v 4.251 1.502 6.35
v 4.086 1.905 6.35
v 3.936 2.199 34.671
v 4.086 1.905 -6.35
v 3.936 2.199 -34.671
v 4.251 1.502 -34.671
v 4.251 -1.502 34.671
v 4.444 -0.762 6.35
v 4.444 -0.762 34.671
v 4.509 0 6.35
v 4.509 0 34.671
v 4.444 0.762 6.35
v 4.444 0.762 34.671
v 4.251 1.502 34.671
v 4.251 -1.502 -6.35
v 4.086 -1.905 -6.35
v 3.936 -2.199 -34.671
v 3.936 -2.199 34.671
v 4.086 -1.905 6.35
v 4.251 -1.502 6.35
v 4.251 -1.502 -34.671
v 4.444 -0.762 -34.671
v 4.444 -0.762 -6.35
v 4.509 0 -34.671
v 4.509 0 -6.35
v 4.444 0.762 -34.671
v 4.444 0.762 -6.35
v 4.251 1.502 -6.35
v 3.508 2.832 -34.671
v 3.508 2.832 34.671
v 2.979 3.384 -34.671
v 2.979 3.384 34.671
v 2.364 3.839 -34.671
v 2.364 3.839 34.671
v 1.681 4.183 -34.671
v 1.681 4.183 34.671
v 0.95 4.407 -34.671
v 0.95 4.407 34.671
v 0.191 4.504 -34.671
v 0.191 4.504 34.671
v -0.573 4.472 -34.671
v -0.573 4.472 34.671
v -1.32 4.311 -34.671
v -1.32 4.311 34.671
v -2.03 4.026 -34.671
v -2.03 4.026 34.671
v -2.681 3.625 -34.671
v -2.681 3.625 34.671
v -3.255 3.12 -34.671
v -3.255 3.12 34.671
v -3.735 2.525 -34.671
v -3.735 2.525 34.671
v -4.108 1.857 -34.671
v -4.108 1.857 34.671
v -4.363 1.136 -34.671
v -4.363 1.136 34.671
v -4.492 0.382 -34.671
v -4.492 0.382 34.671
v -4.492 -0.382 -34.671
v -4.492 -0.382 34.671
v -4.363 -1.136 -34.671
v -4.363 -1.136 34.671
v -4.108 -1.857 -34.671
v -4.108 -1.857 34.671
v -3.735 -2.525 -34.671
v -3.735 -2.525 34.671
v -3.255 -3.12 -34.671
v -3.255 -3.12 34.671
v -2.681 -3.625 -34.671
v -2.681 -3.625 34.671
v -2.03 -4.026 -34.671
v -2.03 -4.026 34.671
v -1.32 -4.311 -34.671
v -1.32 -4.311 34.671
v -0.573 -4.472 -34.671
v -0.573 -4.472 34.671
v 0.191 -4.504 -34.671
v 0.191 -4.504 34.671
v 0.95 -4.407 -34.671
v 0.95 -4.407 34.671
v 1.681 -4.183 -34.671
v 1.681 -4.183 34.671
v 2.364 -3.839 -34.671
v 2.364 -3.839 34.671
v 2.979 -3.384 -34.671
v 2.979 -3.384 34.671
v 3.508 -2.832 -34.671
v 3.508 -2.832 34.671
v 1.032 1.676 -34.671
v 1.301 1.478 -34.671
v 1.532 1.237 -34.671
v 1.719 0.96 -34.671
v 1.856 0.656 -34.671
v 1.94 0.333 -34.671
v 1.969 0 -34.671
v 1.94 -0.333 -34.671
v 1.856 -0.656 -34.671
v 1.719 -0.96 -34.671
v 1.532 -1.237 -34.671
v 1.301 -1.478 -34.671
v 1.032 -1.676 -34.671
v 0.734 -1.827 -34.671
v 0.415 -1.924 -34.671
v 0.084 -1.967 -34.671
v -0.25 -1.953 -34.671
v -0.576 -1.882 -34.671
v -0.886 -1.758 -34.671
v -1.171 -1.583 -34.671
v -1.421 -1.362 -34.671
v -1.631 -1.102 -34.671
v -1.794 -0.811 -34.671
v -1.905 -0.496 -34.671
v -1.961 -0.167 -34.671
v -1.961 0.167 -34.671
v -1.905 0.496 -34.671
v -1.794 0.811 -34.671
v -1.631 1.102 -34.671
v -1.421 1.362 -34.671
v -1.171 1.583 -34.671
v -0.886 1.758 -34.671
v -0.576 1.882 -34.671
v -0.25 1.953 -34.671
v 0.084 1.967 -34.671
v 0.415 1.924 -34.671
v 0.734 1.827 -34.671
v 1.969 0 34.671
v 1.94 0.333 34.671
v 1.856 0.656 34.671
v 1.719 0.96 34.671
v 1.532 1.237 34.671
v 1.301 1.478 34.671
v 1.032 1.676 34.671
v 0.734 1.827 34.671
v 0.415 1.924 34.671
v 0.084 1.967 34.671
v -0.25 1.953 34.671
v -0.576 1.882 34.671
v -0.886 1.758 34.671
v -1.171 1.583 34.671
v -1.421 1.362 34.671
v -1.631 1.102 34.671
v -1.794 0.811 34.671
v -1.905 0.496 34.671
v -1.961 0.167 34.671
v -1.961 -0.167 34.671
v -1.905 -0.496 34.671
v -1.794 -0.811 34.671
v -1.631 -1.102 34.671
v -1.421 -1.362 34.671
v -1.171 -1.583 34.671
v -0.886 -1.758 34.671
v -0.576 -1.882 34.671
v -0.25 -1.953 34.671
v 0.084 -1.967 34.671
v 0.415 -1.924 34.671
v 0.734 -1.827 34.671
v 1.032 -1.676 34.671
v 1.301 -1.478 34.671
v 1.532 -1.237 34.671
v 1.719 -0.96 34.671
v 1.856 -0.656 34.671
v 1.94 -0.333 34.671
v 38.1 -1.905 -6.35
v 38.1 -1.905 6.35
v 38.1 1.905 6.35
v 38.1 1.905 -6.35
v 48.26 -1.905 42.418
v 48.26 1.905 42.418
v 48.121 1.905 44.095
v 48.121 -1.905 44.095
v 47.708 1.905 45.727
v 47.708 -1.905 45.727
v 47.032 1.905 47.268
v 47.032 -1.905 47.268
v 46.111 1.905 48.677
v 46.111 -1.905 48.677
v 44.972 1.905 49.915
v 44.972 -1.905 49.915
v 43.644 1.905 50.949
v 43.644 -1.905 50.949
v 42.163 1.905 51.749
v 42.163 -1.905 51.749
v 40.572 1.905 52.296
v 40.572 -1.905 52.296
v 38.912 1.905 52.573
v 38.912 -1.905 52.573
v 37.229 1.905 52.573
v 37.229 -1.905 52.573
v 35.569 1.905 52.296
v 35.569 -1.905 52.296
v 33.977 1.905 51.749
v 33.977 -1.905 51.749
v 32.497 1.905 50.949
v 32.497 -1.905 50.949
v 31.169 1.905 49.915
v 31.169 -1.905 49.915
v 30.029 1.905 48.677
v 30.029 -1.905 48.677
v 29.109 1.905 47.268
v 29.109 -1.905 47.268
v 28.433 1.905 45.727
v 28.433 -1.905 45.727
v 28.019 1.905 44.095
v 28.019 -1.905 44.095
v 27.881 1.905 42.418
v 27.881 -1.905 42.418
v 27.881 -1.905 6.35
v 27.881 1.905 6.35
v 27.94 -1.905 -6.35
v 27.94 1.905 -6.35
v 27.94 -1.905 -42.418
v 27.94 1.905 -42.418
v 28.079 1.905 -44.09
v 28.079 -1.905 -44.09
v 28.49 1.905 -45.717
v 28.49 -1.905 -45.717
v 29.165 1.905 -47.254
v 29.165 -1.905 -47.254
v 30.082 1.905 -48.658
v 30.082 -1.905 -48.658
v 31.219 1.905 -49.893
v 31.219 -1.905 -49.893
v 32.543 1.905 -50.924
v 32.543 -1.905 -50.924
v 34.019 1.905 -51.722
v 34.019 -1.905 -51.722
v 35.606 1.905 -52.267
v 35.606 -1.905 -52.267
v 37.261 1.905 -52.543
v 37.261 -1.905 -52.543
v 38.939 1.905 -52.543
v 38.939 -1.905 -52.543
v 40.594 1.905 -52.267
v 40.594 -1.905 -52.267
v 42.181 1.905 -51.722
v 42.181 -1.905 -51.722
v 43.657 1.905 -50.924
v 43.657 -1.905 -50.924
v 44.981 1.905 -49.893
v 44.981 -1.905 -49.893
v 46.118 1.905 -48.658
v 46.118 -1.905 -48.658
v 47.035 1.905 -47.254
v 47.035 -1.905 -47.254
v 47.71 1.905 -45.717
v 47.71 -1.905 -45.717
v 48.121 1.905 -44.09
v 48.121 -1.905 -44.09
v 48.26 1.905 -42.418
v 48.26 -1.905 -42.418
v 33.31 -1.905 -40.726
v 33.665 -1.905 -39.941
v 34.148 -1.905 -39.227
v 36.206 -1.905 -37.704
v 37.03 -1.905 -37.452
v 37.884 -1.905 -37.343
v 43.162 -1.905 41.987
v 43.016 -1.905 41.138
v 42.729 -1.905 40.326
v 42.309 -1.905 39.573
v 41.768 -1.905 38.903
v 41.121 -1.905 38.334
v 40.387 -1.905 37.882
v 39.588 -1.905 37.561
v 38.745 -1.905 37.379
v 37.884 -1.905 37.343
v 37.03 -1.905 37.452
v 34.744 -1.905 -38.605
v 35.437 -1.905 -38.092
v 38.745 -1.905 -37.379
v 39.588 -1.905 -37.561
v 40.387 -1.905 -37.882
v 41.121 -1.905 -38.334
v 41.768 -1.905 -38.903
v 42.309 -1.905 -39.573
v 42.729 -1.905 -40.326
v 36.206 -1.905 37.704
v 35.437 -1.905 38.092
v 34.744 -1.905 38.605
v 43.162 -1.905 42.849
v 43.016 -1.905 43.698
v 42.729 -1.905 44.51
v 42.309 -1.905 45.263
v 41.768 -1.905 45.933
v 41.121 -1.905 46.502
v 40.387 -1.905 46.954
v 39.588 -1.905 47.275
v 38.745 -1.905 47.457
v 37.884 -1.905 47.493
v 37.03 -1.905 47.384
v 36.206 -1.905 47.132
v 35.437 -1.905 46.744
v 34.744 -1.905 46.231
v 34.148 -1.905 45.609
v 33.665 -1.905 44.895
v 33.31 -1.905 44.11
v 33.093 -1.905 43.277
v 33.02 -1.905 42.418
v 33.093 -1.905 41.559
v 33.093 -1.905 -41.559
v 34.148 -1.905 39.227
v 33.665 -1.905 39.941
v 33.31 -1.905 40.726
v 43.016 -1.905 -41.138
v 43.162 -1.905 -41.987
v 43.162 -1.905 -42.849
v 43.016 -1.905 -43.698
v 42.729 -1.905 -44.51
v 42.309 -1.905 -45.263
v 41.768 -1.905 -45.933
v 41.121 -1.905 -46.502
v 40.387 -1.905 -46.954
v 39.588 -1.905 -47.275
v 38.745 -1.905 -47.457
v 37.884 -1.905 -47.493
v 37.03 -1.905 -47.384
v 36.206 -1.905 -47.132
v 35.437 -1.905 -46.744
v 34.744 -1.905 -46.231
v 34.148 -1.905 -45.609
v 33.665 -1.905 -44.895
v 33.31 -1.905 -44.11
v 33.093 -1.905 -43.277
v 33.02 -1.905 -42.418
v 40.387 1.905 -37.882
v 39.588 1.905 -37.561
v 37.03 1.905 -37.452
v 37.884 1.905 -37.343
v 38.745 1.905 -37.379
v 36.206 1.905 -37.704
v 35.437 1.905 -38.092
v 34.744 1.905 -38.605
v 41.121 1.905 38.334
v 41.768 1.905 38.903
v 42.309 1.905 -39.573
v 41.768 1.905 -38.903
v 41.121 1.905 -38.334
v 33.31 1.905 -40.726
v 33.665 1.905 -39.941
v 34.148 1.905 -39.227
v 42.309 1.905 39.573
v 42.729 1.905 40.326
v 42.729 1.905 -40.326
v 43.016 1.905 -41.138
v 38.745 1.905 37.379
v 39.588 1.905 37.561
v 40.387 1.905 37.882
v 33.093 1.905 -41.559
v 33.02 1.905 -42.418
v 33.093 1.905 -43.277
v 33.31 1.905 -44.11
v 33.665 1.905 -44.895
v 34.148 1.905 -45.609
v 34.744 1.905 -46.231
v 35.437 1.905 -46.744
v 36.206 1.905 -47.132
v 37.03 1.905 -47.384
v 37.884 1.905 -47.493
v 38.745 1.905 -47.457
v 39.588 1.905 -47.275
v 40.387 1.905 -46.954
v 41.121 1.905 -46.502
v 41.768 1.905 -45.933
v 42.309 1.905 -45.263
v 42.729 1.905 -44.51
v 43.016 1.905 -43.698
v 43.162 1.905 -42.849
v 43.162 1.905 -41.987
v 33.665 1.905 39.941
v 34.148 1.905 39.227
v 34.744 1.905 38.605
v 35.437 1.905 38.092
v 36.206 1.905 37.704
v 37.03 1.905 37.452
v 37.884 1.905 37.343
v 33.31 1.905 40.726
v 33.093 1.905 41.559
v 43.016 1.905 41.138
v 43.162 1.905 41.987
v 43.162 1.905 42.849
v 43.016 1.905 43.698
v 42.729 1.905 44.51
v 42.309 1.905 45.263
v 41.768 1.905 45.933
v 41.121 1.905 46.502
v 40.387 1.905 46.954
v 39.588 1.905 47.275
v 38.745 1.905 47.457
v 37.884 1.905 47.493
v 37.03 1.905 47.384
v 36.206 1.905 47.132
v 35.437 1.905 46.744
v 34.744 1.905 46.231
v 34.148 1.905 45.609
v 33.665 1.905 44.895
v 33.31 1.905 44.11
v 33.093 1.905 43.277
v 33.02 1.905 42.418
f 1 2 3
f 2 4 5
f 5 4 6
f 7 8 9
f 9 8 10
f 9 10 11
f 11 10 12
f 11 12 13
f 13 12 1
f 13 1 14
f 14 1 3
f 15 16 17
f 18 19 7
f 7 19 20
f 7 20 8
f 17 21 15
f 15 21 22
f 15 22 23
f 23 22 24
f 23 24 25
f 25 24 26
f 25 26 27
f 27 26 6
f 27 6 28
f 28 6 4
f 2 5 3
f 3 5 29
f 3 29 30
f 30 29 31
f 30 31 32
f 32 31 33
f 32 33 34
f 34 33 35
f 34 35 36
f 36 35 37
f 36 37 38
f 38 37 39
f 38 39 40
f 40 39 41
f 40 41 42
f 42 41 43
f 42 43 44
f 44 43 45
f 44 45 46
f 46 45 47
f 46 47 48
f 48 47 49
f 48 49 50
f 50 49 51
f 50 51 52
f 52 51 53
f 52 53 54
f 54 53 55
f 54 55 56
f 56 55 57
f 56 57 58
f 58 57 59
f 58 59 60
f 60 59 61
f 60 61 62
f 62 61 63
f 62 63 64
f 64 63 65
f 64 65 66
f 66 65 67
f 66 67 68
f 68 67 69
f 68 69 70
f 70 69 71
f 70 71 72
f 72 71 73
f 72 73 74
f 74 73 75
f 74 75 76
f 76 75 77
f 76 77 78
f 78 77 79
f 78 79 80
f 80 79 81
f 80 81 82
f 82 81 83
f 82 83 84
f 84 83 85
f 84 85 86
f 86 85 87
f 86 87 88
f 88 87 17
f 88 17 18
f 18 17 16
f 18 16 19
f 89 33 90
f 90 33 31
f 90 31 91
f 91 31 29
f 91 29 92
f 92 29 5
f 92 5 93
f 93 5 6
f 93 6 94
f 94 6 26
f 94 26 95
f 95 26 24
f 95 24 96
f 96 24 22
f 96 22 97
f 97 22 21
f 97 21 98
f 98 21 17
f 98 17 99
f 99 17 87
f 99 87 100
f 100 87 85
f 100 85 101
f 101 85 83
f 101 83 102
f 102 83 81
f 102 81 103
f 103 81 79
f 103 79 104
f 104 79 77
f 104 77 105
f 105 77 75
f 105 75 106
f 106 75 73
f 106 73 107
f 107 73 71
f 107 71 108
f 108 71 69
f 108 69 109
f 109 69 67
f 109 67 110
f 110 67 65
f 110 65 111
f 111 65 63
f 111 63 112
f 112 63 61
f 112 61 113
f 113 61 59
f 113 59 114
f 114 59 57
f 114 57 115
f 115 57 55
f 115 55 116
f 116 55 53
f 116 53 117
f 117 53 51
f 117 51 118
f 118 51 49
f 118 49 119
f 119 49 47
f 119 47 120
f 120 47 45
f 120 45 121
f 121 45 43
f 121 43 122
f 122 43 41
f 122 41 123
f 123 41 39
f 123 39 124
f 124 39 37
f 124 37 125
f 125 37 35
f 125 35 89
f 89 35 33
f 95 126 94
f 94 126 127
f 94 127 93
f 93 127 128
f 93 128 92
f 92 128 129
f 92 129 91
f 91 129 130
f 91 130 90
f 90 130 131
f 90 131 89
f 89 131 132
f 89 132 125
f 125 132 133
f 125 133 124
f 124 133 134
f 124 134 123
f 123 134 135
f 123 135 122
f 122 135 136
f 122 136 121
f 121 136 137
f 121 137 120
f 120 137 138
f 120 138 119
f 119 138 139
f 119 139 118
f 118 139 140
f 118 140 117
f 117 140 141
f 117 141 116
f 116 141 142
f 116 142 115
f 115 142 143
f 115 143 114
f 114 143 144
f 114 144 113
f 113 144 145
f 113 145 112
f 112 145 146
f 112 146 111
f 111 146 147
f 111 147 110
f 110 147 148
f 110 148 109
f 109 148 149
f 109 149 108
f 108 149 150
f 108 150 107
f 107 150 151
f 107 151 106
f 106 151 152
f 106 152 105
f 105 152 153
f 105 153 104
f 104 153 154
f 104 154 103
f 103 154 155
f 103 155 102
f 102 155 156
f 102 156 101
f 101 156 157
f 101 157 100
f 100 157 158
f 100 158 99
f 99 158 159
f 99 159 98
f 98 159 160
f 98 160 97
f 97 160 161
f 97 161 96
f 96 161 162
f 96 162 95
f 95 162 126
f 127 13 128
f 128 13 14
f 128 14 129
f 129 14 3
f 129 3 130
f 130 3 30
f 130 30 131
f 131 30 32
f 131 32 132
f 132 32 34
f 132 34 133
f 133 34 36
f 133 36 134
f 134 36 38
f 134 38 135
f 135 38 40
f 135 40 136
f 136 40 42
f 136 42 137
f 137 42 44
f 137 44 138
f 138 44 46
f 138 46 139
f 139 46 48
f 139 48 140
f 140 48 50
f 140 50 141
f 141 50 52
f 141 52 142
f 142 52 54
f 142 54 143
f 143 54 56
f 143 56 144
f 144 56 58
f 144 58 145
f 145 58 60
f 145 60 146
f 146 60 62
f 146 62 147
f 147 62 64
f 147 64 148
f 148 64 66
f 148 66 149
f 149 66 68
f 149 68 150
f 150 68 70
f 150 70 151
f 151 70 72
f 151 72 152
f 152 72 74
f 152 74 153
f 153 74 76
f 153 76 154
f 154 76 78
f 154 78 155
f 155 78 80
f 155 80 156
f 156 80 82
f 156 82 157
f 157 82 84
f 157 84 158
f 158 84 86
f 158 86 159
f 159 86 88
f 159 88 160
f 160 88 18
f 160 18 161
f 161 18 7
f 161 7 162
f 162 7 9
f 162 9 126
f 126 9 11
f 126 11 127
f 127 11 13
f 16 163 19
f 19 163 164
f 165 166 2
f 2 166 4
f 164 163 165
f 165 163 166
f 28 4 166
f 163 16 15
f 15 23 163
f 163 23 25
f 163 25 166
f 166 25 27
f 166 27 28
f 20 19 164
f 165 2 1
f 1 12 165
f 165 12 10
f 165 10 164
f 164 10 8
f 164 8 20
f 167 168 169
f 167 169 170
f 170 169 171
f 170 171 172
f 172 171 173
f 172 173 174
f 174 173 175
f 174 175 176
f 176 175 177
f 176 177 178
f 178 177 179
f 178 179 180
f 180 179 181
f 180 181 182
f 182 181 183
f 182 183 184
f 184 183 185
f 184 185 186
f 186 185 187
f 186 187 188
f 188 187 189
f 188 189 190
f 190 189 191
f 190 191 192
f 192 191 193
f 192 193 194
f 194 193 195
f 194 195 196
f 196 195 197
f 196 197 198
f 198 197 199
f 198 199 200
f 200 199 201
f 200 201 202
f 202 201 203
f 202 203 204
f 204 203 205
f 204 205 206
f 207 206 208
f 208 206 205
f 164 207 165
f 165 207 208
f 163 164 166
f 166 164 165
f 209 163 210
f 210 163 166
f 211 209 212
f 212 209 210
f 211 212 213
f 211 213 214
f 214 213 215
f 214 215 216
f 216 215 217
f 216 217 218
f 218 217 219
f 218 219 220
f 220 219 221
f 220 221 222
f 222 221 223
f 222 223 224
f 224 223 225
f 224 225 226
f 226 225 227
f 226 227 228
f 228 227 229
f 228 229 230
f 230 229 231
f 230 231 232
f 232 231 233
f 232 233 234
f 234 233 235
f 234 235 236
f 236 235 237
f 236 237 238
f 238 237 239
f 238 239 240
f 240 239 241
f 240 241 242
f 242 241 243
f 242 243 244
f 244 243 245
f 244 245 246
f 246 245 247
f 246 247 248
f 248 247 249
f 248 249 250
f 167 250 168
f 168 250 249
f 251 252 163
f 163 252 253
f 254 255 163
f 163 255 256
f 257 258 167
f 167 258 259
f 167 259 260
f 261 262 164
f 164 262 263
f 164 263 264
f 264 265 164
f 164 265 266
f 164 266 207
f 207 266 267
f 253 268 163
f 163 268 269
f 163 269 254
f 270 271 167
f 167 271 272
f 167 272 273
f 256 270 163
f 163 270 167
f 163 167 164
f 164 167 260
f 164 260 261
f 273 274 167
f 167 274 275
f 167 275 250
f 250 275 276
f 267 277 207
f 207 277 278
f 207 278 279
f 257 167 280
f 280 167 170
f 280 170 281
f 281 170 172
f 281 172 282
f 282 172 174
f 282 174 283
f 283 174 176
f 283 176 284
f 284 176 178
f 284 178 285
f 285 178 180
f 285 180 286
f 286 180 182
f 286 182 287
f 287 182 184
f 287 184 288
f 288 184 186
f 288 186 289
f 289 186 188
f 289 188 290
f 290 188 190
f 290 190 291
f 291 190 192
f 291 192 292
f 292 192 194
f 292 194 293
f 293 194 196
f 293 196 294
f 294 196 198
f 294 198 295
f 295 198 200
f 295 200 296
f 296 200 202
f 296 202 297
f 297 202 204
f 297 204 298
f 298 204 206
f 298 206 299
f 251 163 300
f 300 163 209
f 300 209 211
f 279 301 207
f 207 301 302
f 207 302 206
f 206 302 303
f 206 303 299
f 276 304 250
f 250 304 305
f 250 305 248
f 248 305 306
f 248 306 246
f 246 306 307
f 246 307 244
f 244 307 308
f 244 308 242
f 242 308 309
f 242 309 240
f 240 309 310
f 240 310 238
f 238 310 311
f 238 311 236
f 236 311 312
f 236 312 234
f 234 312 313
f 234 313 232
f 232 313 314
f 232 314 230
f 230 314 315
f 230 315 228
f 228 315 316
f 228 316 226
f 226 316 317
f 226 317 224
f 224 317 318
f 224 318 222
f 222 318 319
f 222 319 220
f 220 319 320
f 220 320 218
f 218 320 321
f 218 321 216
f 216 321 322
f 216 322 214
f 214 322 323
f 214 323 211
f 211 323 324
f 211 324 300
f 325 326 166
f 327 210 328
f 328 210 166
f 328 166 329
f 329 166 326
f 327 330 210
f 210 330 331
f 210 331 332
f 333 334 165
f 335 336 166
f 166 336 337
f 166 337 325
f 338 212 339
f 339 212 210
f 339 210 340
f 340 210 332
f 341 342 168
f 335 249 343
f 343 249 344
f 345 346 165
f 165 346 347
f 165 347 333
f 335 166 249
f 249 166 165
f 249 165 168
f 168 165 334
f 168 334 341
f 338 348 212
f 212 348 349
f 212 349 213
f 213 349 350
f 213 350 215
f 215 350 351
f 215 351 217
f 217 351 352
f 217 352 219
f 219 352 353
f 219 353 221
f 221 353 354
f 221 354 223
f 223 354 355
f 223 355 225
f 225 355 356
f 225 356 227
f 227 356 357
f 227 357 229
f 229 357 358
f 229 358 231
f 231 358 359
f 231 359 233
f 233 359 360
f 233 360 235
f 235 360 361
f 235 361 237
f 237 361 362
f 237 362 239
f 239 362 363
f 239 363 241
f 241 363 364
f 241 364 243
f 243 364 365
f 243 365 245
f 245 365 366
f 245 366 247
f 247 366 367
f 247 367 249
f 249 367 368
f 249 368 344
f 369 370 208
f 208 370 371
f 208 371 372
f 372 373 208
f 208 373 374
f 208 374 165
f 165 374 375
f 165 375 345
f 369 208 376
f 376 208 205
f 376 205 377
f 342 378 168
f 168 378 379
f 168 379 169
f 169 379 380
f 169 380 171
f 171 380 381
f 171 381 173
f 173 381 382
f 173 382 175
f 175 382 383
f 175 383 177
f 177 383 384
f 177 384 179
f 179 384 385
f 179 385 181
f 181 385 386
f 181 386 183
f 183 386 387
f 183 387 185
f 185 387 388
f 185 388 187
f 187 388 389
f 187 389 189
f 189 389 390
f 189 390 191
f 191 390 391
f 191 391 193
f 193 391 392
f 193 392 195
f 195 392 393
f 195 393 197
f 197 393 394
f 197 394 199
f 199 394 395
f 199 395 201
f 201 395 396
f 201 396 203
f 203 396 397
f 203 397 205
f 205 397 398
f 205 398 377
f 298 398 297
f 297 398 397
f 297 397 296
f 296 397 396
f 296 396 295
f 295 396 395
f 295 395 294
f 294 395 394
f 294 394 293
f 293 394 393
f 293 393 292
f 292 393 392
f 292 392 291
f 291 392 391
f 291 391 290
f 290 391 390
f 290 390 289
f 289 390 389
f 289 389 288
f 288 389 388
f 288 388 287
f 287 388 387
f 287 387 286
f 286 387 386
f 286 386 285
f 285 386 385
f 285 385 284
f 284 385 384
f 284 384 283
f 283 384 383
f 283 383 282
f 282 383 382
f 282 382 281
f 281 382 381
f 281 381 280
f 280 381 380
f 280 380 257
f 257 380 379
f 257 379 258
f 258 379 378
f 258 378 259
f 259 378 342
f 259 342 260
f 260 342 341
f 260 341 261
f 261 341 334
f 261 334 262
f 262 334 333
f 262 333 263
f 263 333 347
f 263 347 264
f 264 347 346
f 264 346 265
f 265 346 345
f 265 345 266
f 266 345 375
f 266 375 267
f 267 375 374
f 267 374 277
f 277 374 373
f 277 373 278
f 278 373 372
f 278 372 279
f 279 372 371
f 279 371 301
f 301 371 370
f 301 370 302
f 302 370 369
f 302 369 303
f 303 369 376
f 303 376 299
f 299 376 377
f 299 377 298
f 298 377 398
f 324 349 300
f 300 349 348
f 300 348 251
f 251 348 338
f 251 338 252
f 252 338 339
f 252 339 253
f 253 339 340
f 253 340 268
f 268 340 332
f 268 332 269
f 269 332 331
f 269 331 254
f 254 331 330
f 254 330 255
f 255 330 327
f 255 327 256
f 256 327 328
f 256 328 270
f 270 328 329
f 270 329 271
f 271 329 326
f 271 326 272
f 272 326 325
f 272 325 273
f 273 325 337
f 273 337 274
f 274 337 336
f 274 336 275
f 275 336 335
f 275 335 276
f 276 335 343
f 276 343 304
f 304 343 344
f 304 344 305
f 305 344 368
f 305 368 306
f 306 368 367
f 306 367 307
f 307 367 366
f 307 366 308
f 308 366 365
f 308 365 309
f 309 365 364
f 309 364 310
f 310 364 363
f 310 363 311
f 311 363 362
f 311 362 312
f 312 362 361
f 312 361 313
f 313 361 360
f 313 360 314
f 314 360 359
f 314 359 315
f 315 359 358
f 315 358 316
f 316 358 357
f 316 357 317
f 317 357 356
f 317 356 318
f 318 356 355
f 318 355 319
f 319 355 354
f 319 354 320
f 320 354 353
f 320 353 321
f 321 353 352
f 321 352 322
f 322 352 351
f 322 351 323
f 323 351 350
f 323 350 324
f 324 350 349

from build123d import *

# Parameters (mm, degrees)
BOSS_EXTRUDE1_DEPTH      = 34.671
BOSS_EXTRUDE1_DEPTH_BACK = 34.671
SKETCH1_R                = 4.5085
SKETCH1_R_2              = 1.9685
BOSS_EXTRUDE2_DEPTH      = 6.35
BOSS_EXTRUDE2_DEPTH_BACK = 6.35
SKETCH3_W                = 36.1315
SKETCH3_H                = 3.81
SKETCH5_R                = 5.08
BOSS_EXTRUDE3_DEPTH      = 3.81


with BuildPart() as part:
    # Sketch1 → Boss-Extrude1 (new, two sides: drawn at the far end of the back side and taken through both)
    with BuildSketch(Plane.XY.offset(-BOSS_EXTRUDE1_DEPTH_BACK)):
        Circle(SKETCH1_R)
        Circle(SKETCH1_R_2, mode=Mode.SUBTRACT)
    extrude(amount=BOSS_EXTRUDE1_DEPTH + BOSS_EXTRUDE1_DEPTH_BACK)

    # Sketch3 → Boss-Extrude2 (add, two sides: drawn at the far end of the back side and taken through both)
    with BuildSketch(Plane.XY.offset(-BOSS_EXTRUDE2_DEPTH_BACK)):
        with Locations((20.03425, 0)):
            Rectangle(SKETCH3_W, SKETCH3_H)
    extrude(amount=BOSS_EXTRUDE2_DEPTH + BOSS_EXTRUDE2_DEPTH_BACK)


with BuildPart() as body_2:
    # Sketch5 → Boss-Extrude3 (new body)
    with BuildSketch(Plane(origin=(0, 1.905, 0), x_dir=(1, 0, 0), z_dir=(0, 1, 0))):
        with BuildLine():
            Line((27.880519362, -42.418), (27.880519362, -6.35))
            Line((27.880519362, -6.35), (38.1, -6.35))
            Line((38.1, -6.35), (38.1, 6.35))
            Line((38.1, 6.35), (27.94, 6.35))
            Line((27.94, 6.35), (27.94, 42.418))
            ThreePointArc((27.94, 42.418), (38.1, 52.578), (48.26, 42.418))
            Line((48.26, 42.418), (48.26, -42.418))
            ThreePointArc((48.26, -42.418), (38.070259681, -52.607740319), (27.880519362, -42.418))
        make_face()
        with Locations(Location((38.1, -42.418, 0), (0, 0, 180))):
            Circle(SKETCH5_R, mode=Mode.SUBTRACT)
        with Locations(Location((38.1, 42.418, 0), (0, 0, 180))):
            Circle(SKETCH5_R, mode=Mode.SUBTRACT)
    extrude(amount=-BOSS_EXTRUDE3_DEPTH)


solid = Compound([part.part, body_2.part])
